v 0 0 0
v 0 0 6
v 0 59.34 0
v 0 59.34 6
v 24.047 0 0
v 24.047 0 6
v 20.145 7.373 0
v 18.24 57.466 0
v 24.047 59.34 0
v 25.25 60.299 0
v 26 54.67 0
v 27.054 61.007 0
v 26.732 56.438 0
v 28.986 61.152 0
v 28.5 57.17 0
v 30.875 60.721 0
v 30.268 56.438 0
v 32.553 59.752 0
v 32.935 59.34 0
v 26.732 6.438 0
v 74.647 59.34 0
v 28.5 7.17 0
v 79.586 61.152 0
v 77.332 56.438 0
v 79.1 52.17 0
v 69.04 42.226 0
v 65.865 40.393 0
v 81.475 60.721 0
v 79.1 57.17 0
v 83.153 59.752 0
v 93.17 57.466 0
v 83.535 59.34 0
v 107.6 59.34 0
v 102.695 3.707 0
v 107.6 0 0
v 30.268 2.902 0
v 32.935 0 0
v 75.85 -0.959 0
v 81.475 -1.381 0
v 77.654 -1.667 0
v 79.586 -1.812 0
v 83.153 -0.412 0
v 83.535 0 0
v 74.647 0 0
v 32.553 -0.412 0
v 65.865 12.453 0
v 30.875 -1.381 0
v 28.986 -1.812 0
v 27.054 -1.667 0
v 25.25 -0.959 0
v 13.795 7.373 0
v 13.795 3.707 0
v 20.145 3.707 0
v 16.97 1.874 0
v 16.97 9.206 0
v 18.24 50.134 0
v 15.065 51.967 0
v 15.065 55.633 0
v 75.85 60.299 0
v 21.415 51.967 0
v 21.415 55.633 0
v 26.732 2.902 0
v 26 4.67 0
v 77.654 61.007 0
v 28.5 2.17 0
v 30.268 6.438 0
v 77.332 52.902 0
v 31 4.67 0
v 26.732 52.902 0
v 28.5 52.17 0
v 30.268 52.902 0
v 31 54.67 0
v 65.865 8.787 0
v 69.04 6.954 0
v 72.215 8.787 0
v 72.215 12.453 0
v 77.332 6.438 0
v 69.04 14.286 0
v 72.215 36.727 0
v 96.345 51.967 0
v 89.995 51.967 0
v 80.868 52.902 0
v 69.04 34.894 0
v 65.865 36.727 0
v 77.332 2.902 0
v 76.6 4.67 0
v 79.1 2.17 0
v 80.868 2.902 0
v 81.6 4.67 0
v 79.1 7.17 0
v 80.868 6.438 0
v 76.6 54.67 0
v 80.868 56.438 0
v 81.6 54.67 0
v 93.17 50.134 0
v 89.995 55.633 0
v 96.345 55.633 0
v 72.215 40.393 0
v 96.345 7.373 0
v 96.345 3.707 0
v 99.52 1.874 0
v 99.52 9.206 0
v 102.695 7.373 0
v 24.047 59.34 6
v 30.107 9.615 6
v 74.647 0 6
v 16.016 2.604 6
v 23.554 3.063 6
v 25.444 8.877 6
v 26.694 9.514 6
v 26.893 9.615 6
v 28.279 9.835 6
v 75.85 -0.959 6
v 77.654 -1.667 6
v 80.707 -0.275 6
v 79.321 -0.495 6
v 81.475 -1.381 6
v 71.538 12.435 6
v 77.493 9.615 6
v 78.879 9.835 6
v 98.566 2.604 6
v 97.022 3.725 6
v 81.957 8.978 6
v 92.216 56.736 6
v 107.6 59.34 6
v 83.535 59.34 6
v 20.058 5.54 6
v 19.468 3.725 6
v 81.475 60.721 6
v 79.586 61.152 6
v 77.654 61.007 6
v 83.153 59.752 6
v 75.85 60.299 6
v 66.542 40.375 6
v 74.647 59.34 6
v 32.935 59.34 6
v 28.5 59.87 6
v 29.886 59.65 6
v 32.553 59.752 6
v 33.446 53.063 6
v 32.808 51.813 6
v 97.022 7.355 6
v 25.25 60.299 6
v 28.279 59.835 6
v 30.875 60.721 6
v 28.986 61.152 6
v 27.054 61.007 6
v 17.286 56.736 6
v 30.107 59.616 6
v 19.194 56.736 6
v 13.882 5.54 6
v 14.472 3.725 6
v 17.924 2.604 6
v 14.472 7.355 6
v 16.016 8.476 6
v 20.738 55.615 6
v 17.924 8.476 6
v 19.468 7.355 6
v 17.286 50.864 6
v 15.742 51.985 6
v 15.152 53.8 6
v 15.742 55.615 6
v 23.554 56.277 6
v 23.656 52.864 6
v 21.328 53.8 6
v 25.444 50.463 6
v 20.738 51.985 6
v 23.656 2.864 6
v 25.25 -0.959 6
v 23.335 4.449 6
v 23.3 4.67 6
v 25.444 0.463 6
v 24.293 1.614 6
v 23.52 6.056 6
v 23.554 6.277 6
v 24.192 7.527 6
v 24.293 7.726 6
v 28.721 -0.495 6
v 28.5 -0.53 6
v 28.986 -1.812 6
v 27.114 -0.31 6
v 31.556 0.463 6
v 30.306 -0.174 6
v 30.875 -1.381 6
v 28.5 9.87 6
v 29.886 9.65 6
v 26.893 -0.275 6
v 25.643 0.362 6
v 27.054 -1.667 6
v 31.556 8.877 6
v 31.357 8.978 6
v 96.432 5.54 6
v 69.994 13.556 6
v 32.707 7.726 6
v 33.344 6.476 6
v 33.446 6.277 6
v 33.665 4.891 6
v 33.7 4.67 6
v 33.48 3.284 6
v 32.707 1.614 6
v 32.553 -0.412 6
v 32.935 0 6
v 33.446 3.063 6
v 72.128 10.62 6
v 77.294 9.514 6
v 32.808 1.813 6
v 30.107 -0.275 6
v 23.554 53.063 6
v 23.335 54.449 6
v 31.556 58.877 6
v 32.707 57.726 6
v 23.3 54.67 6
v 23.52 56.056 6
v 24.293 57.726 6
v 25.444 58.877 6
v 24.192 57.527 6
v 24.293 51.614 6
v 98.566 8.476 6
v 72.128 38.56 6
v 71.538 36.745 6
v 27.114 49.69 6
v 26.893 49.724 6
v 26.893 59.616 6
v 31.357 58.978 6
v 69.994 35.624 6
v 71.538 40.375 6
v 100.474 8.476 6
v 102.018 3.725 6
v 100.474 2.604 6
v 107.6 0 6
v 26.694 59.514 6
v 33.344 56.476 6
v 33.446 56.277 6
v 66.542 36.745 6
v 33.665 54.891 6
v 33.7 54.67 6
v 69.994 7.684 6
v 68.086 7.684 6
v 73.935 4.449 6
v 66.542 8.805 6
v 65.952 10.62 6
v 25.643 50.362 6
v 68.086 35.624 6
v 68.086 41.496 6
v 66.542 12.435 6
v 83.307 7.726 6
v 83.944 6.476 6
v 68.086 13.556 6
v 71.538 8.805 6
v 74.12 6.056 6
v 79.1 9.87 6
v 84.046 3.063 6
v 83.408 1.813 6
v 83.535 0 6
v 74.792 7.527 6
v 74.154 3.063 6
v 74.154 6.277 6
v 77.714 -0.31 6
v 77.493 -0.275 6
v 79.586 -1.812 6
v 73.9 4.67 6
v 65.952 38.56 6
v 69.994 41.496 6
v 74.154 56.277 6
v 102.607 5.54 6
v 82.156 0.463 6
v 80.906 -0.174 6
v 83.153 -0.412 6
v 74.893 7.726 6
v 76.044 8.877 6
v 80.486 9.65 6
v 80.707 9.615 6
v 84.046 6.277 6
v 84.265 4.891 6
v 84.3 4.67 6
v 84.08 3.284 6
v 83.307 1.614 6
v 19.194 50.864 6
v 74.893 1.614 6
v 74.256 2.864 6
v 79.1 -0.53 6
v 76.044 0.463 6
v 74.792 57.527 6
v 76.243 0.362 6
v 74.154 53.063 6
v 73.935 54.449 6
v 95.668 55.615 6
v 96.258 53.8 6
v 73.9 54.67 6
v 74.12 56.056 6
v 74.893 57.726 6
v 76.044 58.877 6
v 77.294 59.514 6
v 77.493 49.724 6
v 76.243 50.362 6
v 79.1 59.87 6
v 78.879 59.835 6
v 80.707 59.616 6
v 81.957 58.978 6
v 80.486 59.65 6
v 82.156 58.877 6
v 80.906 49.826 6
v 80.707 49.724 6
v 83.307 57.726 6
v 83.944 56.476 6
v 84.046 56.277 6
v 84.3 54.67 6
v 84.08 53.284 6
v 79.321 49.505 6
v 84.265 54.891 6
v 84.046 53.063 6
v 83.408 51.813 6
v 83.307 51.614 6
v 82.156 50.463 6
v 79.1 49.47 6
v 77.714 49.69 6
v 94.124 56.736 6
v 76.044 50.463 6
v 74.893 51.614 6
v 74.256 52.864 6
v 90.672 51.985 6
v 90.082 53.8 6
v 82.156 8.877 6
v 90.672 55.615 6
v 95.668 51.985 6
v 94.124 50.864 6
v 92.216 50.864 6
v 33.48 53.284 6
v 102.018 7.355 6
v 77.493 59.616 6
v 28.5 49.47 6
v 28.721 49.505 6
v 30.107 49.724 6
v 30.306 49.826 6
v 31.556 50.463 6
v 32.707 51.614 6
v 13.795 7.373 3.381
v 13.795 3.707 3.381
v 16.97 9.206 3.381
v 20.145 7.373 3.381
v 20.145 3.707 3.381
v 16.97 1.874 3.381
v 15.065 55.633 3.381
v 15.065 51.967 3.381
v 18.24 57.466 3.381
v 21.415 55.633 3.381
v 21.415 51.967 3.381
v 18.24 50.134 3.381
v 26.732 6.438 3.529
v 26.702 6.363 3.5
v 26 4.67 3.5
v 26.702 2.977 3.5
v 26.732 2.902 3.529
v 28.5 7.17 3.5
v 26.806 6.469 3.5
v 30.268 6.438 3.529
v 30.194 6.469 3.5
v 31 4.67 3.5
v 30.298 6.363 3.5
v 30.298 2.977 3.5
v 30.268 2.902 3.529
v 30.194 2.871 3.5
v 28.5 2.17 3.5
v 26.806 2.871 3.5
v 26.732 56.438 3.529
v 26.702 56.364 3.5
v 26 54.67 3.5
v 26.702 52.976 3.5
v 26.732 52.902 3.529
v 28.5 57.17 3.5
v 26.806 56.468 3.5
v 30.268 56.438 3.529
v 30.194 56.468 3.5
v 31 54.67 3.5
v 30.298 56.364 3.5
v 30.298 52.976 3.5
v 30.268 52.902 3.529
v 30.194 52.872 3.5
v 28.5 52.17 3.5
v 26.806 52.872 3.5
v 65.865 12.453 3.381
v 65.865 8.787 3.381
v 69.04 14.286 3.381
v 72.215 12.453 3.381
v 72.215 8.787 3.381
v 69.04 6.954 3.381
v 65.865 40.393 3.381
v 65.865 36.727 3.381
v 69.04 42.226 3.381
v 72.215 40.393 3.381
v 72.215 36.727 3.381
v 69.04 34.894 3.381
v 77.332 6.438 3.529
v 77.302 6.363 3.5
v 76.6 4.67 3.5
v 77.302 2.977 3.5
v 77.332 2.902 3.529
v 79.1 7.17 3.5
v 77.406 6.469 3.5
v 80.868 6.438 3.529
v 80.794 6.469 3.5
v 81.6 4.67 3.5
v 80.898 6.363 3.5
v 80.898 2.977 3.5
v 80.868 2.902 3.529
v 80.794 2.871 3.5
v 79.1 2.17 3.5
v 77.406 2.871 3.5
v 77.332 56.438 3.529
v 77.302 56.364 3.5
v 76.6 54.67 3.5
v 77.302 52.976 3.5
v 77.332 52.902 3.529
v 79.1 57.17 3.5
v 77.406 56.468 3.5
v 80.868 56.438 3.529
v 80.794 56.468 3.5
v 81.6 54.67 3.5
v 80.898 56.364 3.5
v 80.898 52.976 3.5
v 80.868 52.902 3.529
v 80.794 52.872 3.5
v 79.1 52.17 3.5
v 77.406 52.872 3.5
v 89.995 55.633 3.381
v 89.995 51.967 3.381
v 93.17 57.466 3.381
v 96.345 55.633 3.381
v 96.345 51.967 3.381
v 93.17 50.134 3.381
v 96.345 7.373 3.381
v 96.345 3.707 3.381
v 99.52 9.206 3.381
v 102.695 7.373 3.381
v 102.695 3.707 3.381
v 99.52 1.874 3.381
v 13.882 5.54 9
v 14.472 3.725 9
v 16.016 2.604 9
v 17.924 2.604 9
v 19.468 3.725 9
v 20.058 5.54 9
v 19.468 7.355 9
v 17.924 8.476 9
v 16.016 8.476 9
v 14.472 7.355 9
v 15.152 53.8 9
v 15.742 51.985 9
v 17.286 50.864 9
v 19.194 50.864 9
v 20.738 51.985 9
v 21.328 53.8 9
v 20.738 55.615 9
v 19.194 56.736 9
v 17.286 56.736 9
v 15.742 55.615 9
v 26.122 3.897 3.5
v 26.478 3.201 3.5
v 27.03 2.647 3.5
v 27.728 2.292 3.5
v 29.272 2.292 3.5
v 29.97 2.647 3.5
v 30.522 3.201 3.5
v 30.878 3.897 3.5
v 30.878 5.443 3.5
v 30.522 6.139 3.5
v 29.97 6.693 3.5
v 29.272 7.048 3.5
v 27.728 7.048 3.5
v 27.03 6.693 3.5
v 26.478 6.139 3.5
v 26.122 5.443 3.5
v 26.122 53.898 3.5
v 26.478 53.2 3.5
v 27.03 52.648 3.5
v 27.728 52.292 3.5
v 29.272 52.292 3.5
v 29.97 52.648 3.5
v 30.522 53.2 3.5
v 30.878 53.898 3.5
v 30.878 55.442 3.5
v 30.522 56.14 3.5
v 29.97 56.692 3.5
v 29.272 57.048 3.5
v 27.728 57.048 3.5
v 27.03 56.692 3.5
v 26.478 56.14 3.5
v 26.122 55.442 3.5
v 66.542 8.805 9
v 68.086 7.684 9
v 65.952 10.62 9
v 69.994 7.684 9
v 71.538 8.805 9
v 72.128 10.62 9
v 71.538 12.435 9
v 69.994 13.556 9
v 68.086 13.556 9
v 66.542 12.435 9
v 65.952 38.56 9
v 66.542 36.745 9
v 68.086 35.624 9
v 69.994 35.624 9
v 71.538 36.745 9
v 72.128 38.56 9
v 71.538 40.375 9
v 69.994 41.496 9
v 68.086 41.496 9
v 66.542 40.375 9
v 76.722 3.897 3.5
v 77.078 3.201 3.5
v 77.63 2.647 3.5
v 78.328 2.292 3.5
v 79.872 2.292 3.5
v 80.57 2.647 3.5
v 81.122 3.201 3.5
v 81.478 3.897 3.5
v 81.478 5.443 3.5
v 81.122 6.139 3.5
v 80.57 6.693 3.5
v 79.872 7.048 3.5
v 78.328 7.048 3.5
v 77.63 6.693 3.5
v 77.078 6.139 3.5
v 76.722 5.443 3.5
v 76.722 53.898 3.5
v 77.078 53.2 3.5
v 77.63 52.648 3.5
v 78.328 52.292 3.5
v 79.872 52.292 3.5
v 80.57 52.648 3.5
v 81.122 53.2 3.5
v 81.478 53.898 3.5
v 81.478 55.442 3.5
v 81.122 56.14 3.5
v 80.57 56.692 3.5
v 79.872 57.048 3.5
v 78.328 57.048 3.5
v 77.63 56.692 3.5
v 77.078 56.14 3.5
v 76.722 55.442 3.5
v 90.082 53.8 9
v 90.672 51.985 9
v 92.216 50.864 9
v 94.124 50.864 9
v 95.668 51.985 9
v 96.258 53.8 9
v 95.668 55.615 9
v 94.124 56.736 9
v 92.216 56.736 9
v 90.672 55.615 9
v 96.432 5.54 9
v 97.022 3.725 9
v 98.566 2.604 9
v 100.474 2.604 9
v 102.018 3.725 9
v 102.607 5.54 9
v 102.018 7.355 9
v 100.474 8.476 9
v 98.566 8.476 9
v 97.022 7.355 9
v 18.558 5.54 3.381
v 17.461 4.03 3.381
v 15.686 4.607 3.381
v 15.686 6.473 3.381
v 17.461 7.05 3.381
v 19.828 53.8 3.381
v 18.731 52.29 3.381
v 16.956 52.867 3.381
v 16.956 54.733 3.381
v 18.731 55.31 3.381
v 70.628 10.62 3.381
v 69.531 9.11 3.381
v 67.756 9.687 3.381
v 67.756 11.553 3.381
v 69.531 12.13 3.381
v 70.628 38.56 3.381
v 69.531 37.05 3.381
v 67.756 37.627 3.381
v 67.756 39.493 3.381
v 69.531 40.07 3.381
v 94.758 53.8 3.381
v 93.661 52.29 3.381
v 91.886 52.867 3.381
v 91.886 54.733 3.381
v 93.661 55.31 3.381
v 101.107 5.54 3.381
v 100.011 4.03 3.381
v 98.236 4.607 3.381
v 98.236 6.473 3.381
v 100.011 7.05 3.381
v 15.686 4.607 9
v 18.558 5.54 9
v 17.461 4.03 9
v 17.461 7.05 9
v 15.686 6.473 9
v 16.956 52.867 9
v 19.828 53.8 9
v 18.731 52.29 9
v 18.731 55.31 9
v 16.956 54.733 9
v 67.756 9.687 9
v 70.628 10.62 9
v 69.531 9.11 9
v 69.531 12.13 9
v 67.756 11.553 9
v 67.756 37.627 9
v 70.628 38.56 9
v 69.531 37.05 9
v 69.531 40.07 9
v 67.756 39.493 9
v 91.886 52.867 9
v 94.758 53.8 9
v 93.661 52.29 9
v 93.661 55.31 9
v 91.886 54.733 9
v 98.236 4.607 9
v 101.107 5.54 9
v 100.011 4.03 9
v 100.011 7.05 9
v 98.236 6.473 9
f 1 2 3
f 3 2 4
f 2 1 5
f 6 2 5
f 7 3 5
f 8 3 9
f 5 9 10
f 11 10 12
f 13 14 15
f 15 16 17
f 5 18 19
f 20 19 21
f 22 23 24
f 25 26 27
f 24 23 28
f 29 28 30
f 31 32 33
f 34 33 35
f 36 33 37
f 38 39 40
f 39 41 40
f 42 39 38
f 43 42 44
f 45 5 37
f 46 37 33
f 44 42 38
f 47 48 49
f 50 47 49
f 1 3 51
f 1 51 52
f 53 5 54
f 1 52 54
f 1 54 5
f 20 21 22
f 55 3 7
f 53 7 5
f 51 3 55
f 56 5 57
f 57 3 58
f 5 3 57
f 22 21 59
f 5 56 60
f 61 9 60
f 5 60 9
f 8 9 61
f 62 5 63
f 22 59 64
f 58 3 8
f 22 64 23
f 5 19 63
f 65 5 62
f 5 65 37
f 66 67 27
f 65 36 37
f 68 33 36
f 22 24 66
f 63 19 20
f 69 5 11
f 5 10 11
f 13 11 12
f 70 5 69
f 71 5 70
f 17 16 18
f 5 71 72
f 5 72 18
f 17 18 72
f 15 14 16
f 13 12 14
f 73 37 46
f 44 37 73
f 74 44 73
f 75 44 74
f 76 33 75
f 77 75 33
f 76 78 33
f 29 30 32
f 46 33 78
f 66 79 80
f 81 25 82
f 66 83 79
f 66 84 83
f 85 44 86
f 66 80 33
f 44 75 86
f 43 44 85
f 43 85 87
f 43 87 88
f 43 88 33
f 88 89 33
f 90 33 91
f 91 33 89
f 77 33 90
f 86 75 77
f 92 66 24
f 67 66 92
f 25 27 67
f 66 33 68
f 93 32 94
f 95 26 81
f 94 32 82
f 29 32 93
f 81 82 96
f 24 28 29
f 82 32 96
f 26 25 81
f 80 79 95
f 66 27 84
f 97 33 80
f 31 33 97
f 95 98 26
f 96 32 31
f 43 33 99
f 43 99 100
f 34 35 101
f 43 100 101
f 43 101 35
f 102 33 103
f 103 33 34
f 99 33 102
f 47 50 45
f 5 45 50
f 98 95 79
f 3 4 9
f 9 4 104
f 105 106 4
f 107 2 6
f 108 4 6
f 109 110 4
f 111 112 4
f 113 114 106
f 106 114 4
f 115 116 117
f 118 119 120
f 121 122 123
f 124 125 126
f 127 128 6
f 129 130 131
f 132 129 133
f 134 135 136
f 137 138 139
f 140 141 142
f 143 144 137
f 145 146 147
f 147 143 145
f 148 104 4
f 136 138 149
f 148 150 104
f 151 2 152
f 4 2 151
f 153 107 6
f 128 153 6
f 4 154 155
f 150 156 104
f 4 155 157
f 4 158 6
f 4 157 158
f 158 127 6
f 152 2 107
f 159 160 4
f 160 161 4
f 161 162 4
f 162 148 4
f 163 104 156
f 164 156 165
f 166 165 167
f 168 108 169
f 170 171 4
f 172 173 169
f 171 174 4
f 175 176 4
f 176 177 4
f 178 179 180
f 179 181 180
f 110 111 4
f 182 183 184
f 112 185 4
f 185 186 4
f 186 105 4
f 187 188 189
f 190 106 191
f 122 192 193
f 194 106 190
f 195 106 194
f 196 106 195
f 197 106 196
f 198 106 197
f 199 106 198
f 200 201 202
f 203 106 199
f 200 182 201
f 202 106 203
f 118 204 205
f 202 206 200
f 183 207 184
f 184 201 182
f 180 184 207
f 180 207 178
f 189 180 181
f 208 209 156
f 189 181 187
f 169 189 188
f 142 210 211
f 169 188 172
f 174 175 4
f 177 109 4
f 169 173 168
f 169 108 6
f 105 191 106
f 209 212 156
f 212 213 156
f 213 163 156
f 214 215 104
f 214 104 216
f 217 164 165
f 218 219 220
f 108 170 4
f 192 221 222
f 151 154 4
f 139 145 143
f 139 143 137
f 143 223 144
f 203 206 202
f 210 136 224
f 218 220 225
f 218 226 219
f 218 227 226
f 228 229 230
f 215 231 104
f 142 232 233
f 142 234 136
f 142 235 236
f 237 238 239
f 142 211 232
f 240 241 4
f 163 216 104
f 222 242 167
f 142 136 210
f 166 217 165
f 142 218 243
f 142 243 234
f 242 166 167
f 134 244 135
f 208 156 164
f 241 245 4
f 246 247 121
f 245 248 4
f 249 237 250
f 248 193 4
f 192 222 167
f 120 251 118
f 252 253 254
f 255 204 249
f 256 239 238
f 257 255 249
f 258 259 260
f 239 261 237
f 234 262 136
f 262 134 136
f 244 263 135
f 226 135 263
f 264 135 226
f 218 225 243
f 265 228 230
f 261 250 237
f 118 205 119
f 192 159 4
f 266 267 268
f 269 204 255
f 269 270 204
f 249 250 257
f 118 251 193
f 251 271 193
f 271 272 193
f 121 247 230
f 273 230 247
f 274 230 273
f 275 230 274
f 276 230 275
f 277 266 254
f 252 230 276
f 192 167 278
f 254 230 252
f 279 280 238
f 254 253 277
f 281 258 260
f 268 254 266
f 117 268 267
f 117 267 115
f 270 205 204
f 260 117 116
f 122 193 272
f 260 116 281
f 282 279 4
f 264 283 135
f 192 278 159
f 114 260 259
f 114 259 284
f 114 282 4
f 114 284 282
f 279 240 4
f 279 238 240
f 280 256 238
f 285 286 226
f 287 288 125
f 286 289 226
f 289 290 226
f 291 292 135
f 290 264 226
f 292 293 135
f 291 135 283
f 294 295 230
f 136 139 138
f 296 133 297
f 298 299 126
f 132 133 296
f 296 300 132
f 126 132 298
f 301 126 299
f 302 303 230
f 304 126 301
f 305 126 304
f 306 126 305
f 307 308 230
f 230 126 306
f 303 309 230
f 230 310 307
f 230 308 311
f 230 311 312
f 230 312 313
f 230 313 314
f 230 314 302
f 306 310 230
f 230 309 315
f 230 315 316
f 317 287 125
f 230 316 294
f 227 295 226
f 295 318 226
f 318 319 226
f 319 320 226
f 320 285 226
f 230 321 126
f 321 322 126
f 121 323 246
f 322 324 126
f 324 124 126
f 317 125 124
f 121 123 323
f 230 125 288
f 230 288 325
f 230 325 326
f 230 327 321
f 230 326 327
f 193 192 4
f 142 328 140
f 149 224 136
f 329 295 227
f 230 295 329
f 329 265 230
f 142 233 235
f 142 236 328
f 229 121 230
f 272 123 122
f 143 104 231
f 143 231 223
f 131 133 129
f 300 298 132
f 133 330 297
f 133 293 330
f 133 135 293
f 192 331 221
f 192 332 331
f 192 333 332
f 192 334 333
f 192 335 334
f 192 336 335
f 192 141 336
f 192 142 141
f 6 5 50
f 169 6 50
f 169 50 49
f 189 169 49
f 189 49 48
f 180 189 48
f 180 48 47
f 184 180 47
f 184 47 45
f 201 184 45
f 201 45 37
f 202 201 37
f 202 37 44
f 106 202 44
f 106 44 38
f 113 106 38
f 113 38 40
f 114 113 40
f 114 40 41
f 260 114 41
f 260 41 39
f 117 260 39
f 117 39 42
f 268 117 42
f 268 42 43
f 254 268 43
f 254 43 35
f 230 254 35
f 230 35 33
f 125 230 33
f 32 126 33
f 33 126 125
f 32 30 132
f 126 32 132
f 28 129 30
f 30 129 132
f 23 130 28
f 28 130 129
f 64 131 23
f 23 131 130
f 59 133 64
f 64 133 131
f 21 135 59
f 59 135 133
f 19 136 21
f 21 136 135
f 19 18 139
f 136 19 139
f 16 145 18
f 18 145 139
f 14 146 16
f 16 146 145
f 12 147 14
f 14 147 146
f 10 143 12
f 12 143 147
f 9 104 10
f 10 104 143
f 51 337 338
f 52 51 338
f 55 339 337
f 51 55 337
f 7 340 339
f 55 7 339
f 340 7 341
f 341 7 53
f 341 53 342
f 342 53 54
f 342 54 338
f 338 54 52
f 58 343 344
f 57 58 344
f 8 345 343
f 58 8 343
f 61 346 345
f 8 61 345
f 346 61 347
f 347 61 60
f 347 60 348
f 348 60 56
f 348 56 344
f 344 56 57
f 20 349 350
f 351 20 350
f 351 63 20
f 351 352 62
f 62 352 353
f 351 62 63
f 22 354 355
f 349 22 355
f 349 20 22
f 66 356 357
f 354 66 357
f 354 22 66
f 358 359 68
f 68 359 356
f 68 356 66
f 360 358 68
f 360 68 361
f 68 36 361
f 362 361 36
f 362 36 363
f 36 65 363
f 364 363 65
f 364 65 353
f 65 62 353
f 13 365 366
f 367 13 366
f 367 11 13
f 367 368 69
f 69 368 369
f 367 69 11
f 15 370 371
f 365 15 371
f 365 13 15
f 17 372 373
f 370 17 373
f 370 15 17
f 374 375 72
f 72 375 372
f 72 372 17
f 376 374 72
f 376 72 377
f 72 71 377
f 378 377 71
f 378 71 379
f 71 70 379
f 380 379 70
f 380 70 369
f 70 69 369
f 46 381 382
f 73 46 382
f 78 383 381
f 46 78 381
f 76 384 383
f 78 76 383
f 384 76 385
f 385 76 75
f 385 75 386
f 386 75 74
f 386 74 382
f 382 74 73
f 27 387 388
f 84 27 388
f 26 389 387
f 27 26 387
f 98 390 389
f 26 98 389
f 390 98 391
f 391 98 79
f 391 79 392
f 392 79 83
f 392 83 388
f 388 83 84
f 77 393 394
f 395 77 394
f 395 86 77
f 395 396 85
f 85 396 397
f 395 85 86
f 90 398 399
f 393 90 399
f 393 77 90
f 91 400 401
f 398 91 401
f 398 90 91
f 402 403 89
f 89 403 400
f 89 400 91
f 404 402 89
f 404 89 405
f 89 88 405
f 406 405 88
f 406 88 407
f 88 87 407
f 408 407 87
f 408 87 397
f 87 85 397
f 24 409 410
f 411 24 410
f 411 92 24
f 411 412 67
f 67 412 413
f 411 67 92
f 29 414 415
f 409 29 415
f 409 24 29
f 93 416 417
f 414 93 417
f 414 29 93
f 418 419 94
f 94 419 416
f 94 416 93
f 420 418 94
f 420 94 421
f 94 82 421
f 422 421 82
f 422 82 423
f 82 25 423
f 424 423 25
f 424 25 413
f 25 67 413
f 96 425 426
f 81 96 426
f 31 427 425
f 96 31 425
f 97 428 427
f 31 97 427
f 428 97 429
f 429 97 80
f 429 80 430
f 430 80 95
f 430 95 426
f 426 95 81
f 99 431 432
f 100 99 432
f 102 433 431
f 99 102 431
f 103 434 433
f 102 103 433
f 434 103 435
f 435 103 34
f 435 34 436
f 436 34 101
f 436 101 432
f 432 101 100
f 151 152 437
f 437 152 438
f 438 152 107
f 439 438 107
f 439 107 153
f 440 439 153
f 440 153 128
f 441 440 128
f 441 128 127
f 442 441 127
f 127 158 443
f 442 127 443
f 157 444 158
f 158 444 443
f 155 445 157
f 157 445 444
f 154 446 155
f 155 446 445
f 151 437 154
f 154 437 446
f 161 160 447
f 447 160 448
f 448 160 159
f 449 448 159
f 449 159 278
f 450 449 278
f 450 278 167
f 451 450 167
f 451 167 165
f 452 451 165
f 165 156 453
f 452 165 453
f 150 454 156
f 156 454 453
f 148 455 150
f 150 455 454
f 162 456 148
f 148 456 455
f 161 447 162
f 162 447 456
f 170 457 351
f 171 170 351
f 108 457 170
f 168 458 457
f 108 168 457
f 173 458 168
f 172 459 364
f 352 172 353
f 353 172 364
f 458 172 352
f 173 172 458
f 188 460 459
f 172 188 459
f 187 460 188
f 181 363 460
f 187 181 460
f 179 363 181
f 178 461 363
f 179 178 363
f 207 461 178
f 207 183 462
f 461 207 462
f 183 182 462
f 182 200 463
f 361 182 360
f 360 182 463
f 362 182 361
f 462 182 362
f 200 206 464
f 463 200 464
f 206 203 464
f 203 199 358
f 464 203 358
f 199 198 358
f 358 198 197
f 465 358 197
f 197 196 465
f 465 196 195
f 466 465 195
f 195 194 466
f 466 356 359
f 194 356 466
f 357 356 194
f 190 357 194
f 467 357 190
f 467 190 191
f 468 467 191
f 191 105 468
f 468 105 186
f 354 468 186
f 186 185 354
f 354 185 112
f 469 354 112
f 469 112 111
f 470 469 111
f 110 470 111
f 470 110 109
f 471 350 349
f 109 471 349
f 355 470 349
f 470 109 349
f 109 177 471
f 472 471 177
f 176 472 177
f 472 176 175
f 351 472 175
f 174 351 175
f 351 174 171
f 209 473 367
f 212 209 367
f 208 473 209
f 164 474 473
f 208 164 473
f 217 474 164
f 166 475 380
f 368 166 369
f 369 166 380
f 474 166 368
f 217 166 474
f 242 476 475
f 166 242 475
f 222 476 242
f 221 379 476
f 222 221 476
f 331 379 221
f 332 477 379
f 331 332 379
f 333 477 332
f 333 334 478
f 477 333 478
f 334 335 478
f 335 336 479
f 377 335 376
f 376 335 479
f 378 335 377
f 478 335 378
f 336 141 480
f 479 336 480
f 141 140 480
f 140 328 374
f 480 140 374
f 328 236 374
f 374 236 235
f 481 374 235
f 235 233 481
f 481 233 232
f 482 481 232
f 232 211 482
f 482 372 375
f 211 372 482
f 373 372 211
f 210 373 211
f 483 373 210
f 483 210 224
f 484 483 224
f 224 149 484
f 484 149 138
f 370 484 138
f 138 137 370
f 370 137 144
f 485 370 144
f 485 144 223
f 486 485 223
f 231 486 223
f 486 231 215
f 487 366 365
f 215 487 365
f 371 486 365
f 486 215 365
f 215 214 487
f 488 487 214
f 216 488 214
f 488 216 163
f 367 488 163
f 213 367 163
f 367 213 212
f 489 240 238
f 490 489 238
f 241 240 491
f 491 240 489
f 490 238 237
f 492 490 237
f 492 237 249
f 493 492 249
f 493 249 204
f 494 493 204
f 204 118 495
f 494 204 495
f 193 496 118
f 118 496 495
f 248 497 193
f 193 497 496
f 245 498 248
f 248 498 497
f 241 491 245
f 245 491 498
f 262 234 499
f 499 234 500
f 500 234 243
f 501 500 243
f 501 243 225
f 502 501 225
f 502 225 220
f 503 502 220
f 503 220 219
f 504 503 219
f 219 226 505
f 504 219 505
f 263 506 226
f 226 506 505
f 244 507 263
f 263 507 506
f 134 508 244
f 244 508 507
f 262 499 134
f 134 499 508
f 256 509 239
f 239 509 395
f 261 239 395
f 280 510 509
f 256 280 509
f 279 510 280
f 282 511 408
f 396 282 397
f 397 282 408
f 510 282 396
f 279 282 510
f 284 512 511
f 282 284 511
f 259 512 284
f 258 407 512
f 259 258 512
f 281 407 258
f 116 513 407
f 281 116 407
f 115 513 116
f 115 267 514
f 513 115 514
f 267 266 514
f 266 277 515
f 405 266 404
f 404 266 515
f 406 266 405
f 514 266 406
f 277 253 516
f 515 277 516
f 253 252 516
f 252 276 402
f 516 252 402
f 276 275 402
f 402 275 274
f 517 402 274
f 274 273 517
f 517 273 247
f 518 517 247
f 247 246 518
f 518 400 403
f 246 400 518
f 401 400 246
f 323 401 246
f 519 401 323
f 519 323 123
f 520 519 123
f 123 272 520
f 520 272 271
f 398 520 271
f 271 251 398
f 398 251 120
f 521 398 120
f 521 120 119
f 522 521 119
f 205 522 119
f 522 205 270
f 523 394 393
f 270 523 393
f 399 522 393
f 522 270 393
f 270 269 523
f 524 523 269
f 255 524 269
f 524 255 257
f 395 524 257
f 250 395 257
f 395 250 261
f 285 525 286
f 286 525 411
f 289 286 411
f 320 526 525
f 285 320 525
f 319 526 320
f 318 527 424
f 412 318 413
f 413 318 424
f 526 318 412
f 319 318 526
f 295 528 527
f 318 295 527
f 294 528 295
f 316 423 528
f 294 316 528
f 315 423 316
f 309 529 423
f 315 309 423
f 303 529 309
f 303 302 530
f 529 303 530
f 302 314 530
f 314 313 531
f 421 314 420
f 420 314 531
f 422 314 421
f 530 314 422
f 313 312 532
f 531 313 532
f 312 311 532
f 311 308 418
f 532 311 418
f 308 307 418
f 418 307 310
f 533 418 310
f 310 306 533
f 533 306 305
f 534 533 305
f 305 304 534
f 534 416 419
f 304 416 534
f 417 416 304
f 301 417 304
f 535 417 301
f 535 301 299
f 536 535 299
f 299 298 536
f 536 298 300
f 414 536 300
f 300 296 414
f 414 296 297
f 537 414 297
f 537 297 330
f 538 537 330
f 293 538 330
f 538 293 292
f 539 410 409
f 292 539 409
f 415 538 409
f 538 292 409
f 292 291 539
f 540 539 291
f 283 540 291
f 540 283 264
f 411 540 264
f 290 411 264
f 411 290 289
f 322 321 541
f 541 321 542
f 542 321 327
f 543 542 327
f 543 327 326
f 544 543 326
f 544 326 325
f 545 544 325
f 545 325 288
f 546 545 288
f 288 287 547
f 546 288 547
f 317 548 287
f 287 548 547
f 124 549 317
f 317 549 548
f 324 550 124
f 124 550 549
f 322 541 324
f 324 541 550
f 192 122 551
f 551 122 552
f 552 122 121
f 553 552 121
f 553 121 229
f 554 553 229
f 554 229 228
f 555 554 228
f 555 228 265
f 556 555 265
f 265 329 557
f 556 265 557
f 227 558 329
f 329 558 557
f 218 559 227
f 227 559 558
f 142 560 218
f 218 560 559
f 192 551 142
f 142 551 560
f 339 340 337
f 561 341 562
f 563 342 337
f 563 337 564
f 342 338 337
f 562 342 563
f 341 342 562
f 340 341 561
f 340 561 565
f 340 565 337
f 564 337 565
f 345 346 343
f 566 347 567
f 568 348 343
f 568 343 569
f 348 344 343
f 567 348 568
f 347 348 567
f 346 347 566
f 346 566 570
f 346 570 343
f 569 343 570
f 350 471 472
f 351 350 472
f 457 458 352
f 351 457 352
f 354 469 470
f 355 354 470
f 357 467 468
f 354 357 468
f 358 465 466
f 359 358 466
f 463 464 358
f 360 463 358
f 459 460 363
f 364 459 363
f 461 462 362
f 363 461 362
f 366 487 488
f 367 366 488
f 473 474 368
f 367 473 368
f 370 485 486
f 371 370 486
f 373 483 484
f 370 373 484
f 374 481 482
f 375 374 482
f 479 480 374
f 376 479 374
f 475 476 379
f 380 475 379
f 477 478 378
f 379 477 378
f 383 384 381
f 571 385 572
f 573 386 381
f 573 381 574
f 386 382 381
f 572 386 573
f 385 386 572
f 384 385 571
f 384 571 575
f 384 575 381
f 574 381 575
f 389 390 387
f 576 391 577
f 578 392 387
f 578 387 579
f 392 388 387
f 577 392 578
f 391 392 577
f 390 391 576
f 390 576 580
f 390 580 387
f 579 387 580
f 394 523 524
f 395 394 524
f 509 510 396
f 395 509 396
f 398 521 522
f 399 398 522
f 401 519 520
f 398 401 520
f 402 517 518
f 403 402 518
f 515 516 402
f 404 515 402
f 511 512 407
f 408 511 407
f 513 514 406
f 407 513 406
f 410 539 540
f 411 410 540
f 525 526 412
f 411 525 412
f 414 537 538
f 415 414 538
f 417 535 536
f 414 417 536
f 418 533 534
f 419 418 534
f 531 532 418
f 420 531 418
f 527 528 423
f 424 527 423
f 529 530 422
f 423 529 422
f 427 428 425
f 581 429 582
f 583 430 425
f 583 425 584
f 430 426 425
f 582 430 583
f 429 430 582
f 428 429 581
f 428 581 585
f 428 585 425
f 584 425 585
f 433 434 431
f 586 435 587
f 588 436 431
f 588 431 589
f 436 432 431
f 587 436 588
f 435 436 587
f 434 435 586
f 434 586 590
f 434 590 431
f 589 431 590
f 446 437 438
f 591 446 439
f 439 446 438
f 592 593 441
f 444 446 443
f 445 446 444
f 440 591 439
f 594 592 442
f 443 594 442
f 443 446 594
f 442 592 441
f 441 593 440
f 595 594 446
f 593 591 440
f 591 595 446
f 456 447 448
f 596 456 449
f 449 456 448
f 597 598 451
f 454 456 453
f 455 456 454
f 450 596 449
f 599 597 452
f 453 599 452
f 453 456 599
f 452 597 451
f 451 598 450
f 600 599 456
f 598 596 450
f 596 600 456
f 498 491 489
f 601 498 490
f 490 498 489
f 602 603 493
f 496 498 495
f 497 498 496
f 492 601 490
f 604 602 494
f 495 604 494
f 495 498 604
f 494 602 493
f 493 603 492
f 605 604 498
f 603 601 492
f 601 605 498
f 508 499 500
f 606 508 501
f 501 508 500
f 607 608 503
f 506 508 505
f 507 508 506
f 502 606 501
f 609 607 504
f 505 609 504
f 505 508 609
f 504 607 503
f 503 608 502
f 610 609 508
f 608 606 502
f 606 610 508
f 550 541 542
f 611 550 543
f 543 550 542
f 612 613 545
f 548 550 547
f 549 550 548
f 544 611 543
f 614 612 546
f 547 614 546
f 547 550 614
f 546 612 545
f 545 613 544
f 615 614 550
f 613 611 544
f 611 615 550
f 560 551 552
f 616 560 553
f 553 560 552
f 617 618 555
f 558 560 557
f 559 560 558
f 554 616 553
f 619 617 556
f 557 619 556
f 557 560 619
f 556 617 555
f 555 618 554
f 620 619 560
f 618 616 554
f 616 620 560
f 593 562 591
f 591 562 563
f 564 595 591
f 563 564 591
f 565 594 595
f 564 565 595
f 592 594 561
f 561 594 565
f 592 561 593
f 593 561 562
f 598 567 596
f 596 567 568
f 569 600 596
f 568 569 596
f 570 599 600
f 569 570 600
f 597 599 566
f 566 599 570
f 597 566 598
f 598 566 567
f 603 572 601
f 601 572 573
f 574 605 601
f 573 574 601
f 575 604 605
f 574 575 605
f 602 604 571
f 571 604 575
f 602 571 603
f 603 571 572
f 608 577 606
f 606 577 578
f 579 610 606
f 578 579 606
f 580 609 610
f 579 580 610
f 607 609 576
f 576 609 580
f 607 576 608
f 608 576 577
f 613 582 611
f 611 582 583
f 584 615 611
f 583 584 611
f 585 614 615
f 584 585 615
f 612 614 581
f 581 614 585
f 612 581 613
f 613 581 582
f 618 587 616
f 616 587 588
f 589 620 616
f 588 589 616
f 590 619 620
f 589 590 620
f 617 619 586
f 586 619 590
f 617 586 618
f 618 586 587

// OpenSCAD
//from http://www.wayneandlayne.com/files/common/arduino_mega_drawing.svg
arduino_dims =  [4.000 *25.4, 2.100 *25.4];
arduino_holeR = .125/2*25.4;
arduino_holes = [
				[0.550 *25.4, 0.100 *25.4],
				[0.600 *25.4, 2.000 *25.4],
				[3.800 *25.4, 0.100 *25.4],
				[2.600 *25.4, 0.300 *25.4],
				[3.550 *25.4, 2.000 *25.4],
				[2.600 *25.4, 1.400 *25.4]];

plateOverhang = 3;
plateThickness = 6;
standoffD = (arduino_holeR + 1.5)*2;
standoffH = 3;

underSlung = 0; //how low to dip the board below the bottom extrusion.  beware, on mine the ramps hangs lower than this, and I have feet that give me more clearance.


mountSpacingWidth=44;	//badly named.  not distance between mounts, but distance from edge to mount
mountSpacingHeight=50;
mountThickness=plateThickness;


//this is set fo a #4 machine screw.  I know it's not metric and I want to kill myself, but homedepot doesn't stock many small metric screws
nutTrapWidth=1/4*25.4;
nutTrapHieight=3/32*25.4+1;






plateWidth = arduino_dims[0]+plateOverhang*2;
plateHeight = arduino_dims[1]+plateOverhang*2;

module arduino_plate(){
	translate([plateOverhang,plateOverhang,0])
	difference(){
		union(){
			translate([-plateOverhang,-plateOverhang,])
			cube([plateWidth, plateHeight, plateThickness]);
			for (h = arduino_holes)
				translate([h[0], h[1], 0])
				cylinder(r=standoffD/2, h=standoffH+plateThickness);
		}
		for (h = arduino_holes)
			translate([h[0], h[1], -1]){
				cylinder(r=arduino_holeR, h=standoffH+plateThickness+2);
				nut(nutTrapWidth, nutTrapHieight+1);
			}
	}
}


module nut(w, h){
	translate([0,0,h/2])
	for (i=[1:3])
		rotate([0,0,60*i])
		cube([w, w/sqrt(3), h], center=true);

}

difference(){
	union(){
		arduino_plate();
		for (x = [mountSpacingWidth/2,plateWidth-13-mountSpacingWidth/2])
			translate([x, underSlung-(mountSpacingHeight-plateHeight)/2, plateThickness-mountThickness])
			cube([13, mountSpacingHeight, mountThickness]);
		for (x = [13/2+mountSpacingWidth/2,plateWidth-13/2-mountSpacingWidth/2])
		for (y = [plateHeight/2-mountSpacingHeight/2, plateHeight/2+mountSpacingHeight/2])
			translate([x, underSlung+y, plateThickness-mountThickness])
			cylinder(r=13/2, h=mountThickness);
	}

	for (x = [13/2+mountSpacingWidth/2,plateWidth-13/2-mountSpacingWidth/2])
	for (y = [plateHeight/2-mountSpacingHeight/2, plateHeight/2+mountSpacingHeight/2])
		translate([x, underSlung+y, 0]){
			translate([0,0, plateThickness-mountThickness-1])
			cylinder(r=5/2, h=mountThickness+2);

			translate([0,0, plateThickness-2.5])
			cylinder(r2=9.2/2+(9.2-5)/2.5*1, r1=5/2, h=2.5+1);
		}
}
